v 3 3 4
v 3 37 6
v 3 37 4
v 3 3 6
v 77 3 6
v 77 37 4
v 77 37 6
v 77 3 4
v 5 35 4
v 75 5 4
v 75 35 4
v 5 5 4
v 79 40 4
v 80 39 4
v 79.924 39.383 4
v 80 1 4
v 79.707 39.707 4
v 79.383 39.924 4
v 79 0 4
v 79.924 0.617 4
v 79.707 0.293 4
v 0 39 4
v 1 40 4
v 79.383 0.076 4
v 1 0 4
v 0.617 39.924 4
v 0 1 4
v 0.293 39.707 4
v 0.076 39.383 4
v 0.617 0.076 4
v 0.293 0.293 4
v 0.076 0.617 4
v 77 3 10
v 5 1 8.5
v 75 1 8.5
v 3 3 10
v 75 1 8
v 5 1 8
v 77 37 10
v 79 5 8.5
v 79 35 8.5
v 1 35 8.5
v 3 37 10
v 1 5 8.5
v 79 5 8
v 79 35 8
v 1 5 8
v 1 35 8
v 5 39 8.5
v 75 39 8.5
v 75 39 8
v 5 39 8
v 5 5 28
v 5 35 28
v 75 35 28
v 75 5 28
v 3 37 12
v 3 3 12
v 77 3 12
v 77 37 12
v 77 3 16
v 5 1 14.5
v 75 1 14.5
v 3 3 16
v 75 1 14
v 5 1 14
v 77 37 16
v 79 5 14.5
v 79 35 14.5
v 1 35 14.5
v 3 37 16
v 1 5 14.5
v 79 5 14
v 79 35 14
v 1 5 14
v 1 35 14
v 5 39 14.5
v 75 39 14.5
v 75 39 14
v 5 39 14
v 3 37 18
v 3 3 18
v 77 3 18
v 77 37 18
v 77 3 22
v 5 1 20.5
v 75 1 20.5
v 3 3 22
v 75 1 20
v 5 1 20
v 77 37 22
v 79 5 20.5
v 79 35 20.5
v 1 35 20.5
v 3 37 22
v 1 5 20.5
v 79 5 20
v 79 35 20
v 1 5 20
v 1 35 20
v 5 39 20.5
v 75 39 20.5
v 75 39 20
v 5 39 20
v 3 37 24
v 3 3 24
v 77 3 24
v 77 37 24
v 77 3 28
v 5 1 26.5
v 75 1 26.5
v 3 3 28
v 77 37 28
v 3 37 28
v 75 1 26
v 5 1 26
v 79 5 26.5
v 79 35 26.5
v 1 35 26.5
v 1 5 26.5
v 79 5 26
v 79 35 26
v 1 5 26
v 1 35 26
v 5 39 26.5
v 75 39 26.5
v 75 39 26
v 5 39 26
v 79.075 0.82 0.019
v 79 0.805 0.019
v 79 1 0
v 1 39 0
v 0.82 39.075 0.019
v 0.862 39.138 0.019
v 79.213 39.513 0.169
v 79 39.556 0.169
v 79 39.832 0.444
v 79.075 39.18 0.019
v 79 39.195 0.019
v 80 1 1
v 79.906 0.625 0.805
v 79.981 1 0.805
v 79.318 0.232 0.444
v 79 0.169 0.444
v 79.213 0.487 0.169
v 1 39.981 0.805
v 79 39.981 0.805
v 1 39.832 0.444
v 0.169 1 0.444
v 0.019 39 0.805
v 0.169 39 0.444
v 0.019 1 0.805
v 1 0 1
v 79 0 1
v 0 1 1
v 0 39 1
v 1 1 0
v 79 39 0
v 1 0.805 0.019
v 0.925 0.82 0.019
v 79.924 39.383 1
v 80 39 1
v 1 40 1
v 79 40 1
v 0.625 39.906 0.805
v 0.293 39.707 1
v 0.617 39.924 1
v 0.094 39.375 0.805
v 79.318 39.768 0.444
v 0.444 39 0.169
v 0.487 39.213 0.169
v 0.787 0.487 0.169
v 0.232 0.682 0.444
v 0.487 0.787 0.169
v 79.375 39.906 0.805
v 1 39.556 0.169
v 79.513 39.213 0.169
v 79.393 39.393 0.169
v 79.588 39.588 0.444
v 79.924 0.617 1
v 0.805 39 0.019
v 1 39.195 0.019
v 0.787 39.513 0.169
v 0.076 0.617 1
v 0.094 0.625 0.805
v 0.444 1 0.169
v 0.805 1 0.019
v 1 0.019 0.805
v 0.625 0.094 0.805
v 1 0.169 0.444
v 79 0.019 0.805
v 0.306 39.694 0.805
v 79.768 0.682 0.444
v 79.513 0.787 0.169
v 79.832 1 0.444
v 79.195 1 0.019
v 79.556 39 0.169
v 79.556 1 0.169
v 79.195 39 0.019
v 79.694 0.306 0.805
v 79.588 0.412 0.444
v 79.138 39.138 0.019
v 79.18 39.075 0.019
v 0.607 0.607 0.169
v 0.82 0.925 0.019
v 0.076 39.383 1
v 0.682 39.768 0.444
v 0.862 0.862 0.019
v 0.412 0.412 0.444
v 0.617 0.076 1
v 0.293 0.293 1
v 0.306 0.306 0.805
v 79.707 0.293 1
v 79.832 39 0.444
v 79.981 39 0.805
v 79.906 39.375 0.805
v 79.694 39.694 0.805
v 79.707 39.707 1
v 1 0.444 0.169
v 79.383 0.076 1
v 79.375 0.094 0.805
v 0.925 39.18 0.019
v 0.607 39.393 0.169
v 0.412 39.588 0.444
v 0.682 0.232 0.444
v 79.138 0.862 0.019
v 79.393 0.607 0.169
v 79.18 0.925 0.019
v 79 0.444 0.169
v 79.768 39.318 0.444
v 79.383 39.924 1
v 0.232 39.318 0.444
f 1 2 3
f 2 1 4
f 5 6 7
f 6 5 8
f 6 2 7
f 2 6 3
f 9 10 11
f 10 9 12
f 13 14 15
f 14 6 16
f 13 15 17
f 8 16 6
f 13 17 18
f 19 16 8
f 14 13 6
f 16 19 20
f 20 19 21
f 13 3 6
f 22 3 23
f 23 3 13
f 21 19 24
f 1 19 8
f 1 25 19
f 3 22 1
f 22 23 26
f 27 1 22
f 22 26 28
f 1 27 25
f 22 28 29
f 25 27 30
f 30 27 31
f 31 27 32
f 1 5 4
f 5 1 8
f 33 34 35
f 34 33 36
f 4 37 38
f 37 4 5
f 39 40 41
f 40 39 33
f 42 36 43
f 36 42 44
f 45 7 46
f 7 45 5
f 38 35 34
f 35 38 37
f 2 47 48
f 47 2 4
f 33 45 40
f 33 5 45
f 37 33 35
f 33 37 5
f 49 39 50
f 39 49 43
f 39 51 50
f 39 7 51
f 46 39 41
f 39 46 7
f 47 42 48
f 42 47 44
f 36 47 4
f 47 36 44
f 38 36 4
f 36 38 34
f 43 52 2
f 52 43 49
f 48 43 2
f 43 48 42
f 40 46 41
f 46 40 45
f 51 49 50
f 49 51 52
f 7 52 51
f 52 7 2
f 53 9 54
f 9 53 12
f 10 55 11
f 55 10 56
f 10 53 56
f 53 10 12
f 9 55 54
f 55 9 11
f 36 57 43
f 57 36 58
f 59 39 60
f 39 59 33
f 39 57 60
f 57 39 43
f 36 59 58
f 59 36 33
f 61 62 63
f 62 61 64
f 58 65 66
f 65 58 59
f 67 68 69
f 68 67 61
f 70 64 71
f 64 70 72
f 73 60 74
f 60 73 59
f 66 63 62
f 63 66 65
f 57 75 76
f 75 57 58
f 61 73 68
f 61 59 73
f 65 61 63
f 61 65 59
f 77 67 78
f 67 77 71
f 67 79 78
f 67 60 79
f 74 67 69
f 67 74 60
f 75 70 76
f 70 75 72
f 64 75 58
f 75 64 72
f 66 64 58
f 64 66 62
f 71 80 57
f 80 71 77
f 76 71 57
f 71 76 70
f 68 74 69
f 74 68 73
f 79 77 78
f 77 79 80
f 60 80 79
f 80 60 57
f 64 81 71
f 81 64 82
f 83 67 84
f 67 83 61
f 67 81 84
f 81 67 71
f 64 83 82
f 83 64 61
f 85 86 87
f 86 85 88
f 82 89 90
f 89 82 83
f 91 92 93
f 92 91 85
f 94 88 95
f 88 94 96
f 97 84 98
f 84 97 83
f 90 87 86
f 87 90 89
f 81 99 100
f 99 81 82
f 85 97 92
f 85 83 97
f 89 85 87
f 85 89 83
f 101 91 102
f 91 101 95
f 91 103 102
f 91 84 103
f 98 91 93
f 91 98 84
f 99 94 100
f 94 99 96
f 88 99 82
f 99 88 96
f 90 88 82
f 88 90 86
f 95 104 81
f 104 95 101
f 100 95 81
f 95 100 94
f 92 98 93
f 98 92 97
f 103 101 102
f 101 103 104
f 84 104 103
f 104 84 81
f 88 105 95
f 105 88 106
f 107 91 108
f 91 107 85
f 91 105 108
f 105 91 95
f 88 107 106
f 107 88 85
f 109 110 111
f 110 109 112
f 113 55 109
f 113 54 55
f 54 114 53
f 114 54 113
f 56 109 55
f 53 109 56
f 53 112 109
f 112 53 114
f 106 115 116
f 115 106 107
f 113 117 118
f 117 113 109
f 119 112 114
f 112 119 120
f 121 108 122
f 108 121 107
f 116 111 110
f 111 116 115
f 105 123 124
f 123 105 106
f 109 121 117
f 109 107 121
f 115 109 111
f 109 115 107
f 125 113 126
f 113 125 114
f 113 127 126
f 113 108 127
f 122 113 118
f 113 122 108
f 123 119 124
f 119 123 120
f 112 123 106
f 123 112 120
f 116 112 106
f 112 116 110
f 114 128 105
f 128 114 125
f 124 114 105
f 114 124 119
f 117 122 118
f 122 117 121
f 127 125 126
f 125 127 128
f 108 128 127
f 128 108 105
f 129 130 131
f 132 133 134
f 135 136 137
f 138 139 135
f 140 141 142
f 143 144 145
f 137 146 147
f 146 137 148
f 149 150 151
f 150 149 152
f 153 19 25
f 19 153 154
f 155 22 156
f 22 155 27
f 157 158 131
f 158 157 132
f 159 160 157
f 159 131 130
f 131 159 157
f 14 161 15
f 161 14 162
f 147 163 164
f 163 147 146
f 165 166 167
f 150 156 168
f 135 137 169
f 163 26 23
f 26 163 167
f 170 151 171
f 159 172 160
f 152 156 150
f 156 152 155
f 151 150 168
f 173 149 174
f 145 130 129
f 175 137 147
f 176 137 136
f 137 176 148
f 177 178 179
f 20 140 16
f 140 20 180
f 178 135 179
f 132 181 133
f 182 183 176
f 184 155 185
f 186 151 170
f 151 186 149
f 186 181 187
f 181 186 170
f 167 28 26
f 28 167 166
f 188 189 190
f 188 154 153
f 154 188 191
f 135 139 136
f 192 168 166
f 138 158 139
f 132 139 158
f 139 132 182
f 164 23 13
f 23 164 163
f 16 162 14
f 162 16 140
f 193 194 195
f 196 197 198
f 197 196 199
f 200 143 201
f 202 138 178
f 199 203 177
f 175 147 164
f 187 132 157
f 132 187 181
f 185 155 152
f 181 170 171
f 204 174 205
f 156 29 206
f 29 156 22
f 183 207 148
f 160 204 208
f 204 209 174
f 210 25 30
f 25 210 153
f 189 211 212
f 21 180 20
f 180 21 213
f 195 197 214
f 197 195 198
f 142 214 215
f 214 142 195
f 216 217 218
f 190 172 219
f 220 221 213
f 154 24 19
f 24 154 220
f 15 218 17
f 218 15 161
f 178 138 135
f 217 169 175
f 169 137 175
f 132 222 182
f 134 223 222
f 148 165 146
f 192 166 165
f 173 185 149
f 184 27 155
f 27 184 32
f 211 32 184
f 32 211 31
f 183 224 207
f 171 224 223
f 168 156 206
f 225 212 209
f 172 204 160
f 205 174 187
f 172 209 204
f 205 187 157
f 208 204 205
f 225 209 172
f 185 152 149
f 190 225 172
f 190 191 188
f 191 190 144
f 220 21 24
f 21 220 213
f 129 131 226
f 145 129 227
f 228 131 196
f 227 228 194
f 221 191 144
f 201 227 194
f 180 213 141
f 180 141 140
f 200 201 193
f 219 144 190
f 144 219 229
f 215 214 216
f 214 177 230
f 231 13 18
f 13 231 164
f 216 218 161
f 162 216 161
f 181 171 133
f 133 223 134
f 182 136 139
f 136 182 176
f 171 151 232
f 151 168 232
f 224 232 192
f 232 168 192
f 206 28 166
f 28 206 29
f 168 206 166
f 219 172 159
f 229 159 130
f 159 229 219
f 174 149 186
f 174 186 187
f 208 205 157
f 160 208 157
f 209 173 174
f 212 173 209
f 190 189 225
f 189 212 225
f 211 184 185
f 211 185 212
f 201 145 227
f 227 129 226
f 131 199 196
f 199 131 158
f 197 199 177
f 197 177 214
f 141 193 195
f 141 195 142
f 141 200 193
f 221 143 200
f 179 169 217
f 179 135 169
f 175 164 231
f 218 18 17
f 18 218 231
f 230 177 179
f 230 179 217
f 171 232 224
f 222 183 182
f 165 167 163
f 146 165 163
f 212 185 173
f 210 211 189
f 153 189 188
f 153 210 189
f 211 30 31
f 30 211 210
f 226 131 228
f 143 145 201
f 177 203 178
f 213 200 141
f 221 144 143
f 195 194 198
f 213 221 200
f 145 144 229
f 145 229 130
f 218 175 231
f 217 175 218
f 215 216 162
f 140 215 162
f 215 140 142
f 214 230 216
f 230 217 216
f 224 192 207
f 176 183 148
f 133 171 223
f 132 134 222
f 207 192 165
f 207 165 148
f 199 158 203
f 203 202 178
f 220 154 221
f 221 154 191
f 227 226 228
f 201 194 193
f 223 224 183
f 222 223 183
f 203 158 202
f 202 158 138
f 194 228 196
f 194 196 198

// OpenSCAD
//This work by Eric Bissonnette is licensed under the Creative Commons Attribution 4.0 International License. To view a copy of this license, visit http://creativecommons.org/licenses/by/4.0/.

// Primary parameters
tube_length = 80;
tube_width = 40;
tube_wall_thickness = 1;

// The rest
sole_thickness = 4;
sole_corner_radius = 1;
rib_count = 4;
rib_offset = 2;
rib_width = 2;
rib_min_thickness = 0.5;
rib_max_thickness = 4;
rib_wall_thickness = 2;

sole_width = tube_width;
sole_length = tube_length;
rib_height = rib_offset + rib_max_thickness;

// Sole
hull() {
    translate([sole_corner_radius, sole_corner_radius, 0]) 
    cube([sole_length - (2 * sole_corner_radius), sole_width - (2 * sole_corner_radius), sole_thickness]);
    for (i = [[sole_corner_radius, sole_corner_radius, sole_corner_radius],
             [sole_length - sole_corner_radius, sole_corner_radius, sole_corner_radius],
             [sole_corner_radius, sole_width - sole_corner_radius, sole_corner_radius],
             [sole_length - sole_corner_radius, sole_width - sole_corner_radius, sole_corner_radius]]) {
        translate(i)
        cylinder(sole_thickness - sole_corner_radius, sole_corner_radius, $fn = 16);
        translate(i)
        sphere(sole_corner_radius, $fn = 16);
     }
}

// Insert
module rib() {
    difference()
    {
        union() {
            translate([tube_wall_thickness + rib_width, tube_wall_thickness + rib_width, 0])
            cube([sole_length - (2 * tube_wall_thickness) - (2 * rib_width), sole_width - (2 * tube_wall_thickness) - (2 * rib_width), rib_offset]);
        
            hull() {
                translate([tube_wall_thickness + (2 * rib_width), tube_wall_thickness, rib_offset + (rib_max_thickness / 2)])
                cube([sole_length - (2 * tube_wall_thickness) - (4 * rib_width), sole_width - (2 * tube_wall_thickness), rib_min_thickness]);
                
                translate([tube_wall_thickness, tube_wall_thickness + (2 * rib_width), rib_offset + (rib_max_thickness / 2)])
                cube([sole_length - (2 * tube_wall_thickness), sole_width - (2 * tube_wall_thickness)  - (4 * rib_width), rib_min_thickness]);
                
                
                translate([tube_wall_thickness + rib_width, tube_wall_thickness + rib_width, rib_offset])
                cube([sole_length - (2 * tube_wall_thickness) - (2 * rib_width), sole_width - (2 * tube_wall_thickness) - (2 * rib_width), rib_max_thickness]);
            }
        }
        
        translate([tube_wall_thickness + rib_width + rib_wall_thickness, tube_wall_thickness + rib_width + rib_wall_thickness, 0]) 
        cube([sole_length - (2 * tube_wall_thickness) - (2 * rib_width) - (2 * rib_wall_thickness), sole_width - (2 * tube_wall_thickness) - (2 * rib_width) - (2 * rib_wall_thickness), rib_height]);
    }
}

for (i = [0:rib_count - 1])
{
    translate([0,0,sole_thickness + (i * rib_height)])
    rib();
}
